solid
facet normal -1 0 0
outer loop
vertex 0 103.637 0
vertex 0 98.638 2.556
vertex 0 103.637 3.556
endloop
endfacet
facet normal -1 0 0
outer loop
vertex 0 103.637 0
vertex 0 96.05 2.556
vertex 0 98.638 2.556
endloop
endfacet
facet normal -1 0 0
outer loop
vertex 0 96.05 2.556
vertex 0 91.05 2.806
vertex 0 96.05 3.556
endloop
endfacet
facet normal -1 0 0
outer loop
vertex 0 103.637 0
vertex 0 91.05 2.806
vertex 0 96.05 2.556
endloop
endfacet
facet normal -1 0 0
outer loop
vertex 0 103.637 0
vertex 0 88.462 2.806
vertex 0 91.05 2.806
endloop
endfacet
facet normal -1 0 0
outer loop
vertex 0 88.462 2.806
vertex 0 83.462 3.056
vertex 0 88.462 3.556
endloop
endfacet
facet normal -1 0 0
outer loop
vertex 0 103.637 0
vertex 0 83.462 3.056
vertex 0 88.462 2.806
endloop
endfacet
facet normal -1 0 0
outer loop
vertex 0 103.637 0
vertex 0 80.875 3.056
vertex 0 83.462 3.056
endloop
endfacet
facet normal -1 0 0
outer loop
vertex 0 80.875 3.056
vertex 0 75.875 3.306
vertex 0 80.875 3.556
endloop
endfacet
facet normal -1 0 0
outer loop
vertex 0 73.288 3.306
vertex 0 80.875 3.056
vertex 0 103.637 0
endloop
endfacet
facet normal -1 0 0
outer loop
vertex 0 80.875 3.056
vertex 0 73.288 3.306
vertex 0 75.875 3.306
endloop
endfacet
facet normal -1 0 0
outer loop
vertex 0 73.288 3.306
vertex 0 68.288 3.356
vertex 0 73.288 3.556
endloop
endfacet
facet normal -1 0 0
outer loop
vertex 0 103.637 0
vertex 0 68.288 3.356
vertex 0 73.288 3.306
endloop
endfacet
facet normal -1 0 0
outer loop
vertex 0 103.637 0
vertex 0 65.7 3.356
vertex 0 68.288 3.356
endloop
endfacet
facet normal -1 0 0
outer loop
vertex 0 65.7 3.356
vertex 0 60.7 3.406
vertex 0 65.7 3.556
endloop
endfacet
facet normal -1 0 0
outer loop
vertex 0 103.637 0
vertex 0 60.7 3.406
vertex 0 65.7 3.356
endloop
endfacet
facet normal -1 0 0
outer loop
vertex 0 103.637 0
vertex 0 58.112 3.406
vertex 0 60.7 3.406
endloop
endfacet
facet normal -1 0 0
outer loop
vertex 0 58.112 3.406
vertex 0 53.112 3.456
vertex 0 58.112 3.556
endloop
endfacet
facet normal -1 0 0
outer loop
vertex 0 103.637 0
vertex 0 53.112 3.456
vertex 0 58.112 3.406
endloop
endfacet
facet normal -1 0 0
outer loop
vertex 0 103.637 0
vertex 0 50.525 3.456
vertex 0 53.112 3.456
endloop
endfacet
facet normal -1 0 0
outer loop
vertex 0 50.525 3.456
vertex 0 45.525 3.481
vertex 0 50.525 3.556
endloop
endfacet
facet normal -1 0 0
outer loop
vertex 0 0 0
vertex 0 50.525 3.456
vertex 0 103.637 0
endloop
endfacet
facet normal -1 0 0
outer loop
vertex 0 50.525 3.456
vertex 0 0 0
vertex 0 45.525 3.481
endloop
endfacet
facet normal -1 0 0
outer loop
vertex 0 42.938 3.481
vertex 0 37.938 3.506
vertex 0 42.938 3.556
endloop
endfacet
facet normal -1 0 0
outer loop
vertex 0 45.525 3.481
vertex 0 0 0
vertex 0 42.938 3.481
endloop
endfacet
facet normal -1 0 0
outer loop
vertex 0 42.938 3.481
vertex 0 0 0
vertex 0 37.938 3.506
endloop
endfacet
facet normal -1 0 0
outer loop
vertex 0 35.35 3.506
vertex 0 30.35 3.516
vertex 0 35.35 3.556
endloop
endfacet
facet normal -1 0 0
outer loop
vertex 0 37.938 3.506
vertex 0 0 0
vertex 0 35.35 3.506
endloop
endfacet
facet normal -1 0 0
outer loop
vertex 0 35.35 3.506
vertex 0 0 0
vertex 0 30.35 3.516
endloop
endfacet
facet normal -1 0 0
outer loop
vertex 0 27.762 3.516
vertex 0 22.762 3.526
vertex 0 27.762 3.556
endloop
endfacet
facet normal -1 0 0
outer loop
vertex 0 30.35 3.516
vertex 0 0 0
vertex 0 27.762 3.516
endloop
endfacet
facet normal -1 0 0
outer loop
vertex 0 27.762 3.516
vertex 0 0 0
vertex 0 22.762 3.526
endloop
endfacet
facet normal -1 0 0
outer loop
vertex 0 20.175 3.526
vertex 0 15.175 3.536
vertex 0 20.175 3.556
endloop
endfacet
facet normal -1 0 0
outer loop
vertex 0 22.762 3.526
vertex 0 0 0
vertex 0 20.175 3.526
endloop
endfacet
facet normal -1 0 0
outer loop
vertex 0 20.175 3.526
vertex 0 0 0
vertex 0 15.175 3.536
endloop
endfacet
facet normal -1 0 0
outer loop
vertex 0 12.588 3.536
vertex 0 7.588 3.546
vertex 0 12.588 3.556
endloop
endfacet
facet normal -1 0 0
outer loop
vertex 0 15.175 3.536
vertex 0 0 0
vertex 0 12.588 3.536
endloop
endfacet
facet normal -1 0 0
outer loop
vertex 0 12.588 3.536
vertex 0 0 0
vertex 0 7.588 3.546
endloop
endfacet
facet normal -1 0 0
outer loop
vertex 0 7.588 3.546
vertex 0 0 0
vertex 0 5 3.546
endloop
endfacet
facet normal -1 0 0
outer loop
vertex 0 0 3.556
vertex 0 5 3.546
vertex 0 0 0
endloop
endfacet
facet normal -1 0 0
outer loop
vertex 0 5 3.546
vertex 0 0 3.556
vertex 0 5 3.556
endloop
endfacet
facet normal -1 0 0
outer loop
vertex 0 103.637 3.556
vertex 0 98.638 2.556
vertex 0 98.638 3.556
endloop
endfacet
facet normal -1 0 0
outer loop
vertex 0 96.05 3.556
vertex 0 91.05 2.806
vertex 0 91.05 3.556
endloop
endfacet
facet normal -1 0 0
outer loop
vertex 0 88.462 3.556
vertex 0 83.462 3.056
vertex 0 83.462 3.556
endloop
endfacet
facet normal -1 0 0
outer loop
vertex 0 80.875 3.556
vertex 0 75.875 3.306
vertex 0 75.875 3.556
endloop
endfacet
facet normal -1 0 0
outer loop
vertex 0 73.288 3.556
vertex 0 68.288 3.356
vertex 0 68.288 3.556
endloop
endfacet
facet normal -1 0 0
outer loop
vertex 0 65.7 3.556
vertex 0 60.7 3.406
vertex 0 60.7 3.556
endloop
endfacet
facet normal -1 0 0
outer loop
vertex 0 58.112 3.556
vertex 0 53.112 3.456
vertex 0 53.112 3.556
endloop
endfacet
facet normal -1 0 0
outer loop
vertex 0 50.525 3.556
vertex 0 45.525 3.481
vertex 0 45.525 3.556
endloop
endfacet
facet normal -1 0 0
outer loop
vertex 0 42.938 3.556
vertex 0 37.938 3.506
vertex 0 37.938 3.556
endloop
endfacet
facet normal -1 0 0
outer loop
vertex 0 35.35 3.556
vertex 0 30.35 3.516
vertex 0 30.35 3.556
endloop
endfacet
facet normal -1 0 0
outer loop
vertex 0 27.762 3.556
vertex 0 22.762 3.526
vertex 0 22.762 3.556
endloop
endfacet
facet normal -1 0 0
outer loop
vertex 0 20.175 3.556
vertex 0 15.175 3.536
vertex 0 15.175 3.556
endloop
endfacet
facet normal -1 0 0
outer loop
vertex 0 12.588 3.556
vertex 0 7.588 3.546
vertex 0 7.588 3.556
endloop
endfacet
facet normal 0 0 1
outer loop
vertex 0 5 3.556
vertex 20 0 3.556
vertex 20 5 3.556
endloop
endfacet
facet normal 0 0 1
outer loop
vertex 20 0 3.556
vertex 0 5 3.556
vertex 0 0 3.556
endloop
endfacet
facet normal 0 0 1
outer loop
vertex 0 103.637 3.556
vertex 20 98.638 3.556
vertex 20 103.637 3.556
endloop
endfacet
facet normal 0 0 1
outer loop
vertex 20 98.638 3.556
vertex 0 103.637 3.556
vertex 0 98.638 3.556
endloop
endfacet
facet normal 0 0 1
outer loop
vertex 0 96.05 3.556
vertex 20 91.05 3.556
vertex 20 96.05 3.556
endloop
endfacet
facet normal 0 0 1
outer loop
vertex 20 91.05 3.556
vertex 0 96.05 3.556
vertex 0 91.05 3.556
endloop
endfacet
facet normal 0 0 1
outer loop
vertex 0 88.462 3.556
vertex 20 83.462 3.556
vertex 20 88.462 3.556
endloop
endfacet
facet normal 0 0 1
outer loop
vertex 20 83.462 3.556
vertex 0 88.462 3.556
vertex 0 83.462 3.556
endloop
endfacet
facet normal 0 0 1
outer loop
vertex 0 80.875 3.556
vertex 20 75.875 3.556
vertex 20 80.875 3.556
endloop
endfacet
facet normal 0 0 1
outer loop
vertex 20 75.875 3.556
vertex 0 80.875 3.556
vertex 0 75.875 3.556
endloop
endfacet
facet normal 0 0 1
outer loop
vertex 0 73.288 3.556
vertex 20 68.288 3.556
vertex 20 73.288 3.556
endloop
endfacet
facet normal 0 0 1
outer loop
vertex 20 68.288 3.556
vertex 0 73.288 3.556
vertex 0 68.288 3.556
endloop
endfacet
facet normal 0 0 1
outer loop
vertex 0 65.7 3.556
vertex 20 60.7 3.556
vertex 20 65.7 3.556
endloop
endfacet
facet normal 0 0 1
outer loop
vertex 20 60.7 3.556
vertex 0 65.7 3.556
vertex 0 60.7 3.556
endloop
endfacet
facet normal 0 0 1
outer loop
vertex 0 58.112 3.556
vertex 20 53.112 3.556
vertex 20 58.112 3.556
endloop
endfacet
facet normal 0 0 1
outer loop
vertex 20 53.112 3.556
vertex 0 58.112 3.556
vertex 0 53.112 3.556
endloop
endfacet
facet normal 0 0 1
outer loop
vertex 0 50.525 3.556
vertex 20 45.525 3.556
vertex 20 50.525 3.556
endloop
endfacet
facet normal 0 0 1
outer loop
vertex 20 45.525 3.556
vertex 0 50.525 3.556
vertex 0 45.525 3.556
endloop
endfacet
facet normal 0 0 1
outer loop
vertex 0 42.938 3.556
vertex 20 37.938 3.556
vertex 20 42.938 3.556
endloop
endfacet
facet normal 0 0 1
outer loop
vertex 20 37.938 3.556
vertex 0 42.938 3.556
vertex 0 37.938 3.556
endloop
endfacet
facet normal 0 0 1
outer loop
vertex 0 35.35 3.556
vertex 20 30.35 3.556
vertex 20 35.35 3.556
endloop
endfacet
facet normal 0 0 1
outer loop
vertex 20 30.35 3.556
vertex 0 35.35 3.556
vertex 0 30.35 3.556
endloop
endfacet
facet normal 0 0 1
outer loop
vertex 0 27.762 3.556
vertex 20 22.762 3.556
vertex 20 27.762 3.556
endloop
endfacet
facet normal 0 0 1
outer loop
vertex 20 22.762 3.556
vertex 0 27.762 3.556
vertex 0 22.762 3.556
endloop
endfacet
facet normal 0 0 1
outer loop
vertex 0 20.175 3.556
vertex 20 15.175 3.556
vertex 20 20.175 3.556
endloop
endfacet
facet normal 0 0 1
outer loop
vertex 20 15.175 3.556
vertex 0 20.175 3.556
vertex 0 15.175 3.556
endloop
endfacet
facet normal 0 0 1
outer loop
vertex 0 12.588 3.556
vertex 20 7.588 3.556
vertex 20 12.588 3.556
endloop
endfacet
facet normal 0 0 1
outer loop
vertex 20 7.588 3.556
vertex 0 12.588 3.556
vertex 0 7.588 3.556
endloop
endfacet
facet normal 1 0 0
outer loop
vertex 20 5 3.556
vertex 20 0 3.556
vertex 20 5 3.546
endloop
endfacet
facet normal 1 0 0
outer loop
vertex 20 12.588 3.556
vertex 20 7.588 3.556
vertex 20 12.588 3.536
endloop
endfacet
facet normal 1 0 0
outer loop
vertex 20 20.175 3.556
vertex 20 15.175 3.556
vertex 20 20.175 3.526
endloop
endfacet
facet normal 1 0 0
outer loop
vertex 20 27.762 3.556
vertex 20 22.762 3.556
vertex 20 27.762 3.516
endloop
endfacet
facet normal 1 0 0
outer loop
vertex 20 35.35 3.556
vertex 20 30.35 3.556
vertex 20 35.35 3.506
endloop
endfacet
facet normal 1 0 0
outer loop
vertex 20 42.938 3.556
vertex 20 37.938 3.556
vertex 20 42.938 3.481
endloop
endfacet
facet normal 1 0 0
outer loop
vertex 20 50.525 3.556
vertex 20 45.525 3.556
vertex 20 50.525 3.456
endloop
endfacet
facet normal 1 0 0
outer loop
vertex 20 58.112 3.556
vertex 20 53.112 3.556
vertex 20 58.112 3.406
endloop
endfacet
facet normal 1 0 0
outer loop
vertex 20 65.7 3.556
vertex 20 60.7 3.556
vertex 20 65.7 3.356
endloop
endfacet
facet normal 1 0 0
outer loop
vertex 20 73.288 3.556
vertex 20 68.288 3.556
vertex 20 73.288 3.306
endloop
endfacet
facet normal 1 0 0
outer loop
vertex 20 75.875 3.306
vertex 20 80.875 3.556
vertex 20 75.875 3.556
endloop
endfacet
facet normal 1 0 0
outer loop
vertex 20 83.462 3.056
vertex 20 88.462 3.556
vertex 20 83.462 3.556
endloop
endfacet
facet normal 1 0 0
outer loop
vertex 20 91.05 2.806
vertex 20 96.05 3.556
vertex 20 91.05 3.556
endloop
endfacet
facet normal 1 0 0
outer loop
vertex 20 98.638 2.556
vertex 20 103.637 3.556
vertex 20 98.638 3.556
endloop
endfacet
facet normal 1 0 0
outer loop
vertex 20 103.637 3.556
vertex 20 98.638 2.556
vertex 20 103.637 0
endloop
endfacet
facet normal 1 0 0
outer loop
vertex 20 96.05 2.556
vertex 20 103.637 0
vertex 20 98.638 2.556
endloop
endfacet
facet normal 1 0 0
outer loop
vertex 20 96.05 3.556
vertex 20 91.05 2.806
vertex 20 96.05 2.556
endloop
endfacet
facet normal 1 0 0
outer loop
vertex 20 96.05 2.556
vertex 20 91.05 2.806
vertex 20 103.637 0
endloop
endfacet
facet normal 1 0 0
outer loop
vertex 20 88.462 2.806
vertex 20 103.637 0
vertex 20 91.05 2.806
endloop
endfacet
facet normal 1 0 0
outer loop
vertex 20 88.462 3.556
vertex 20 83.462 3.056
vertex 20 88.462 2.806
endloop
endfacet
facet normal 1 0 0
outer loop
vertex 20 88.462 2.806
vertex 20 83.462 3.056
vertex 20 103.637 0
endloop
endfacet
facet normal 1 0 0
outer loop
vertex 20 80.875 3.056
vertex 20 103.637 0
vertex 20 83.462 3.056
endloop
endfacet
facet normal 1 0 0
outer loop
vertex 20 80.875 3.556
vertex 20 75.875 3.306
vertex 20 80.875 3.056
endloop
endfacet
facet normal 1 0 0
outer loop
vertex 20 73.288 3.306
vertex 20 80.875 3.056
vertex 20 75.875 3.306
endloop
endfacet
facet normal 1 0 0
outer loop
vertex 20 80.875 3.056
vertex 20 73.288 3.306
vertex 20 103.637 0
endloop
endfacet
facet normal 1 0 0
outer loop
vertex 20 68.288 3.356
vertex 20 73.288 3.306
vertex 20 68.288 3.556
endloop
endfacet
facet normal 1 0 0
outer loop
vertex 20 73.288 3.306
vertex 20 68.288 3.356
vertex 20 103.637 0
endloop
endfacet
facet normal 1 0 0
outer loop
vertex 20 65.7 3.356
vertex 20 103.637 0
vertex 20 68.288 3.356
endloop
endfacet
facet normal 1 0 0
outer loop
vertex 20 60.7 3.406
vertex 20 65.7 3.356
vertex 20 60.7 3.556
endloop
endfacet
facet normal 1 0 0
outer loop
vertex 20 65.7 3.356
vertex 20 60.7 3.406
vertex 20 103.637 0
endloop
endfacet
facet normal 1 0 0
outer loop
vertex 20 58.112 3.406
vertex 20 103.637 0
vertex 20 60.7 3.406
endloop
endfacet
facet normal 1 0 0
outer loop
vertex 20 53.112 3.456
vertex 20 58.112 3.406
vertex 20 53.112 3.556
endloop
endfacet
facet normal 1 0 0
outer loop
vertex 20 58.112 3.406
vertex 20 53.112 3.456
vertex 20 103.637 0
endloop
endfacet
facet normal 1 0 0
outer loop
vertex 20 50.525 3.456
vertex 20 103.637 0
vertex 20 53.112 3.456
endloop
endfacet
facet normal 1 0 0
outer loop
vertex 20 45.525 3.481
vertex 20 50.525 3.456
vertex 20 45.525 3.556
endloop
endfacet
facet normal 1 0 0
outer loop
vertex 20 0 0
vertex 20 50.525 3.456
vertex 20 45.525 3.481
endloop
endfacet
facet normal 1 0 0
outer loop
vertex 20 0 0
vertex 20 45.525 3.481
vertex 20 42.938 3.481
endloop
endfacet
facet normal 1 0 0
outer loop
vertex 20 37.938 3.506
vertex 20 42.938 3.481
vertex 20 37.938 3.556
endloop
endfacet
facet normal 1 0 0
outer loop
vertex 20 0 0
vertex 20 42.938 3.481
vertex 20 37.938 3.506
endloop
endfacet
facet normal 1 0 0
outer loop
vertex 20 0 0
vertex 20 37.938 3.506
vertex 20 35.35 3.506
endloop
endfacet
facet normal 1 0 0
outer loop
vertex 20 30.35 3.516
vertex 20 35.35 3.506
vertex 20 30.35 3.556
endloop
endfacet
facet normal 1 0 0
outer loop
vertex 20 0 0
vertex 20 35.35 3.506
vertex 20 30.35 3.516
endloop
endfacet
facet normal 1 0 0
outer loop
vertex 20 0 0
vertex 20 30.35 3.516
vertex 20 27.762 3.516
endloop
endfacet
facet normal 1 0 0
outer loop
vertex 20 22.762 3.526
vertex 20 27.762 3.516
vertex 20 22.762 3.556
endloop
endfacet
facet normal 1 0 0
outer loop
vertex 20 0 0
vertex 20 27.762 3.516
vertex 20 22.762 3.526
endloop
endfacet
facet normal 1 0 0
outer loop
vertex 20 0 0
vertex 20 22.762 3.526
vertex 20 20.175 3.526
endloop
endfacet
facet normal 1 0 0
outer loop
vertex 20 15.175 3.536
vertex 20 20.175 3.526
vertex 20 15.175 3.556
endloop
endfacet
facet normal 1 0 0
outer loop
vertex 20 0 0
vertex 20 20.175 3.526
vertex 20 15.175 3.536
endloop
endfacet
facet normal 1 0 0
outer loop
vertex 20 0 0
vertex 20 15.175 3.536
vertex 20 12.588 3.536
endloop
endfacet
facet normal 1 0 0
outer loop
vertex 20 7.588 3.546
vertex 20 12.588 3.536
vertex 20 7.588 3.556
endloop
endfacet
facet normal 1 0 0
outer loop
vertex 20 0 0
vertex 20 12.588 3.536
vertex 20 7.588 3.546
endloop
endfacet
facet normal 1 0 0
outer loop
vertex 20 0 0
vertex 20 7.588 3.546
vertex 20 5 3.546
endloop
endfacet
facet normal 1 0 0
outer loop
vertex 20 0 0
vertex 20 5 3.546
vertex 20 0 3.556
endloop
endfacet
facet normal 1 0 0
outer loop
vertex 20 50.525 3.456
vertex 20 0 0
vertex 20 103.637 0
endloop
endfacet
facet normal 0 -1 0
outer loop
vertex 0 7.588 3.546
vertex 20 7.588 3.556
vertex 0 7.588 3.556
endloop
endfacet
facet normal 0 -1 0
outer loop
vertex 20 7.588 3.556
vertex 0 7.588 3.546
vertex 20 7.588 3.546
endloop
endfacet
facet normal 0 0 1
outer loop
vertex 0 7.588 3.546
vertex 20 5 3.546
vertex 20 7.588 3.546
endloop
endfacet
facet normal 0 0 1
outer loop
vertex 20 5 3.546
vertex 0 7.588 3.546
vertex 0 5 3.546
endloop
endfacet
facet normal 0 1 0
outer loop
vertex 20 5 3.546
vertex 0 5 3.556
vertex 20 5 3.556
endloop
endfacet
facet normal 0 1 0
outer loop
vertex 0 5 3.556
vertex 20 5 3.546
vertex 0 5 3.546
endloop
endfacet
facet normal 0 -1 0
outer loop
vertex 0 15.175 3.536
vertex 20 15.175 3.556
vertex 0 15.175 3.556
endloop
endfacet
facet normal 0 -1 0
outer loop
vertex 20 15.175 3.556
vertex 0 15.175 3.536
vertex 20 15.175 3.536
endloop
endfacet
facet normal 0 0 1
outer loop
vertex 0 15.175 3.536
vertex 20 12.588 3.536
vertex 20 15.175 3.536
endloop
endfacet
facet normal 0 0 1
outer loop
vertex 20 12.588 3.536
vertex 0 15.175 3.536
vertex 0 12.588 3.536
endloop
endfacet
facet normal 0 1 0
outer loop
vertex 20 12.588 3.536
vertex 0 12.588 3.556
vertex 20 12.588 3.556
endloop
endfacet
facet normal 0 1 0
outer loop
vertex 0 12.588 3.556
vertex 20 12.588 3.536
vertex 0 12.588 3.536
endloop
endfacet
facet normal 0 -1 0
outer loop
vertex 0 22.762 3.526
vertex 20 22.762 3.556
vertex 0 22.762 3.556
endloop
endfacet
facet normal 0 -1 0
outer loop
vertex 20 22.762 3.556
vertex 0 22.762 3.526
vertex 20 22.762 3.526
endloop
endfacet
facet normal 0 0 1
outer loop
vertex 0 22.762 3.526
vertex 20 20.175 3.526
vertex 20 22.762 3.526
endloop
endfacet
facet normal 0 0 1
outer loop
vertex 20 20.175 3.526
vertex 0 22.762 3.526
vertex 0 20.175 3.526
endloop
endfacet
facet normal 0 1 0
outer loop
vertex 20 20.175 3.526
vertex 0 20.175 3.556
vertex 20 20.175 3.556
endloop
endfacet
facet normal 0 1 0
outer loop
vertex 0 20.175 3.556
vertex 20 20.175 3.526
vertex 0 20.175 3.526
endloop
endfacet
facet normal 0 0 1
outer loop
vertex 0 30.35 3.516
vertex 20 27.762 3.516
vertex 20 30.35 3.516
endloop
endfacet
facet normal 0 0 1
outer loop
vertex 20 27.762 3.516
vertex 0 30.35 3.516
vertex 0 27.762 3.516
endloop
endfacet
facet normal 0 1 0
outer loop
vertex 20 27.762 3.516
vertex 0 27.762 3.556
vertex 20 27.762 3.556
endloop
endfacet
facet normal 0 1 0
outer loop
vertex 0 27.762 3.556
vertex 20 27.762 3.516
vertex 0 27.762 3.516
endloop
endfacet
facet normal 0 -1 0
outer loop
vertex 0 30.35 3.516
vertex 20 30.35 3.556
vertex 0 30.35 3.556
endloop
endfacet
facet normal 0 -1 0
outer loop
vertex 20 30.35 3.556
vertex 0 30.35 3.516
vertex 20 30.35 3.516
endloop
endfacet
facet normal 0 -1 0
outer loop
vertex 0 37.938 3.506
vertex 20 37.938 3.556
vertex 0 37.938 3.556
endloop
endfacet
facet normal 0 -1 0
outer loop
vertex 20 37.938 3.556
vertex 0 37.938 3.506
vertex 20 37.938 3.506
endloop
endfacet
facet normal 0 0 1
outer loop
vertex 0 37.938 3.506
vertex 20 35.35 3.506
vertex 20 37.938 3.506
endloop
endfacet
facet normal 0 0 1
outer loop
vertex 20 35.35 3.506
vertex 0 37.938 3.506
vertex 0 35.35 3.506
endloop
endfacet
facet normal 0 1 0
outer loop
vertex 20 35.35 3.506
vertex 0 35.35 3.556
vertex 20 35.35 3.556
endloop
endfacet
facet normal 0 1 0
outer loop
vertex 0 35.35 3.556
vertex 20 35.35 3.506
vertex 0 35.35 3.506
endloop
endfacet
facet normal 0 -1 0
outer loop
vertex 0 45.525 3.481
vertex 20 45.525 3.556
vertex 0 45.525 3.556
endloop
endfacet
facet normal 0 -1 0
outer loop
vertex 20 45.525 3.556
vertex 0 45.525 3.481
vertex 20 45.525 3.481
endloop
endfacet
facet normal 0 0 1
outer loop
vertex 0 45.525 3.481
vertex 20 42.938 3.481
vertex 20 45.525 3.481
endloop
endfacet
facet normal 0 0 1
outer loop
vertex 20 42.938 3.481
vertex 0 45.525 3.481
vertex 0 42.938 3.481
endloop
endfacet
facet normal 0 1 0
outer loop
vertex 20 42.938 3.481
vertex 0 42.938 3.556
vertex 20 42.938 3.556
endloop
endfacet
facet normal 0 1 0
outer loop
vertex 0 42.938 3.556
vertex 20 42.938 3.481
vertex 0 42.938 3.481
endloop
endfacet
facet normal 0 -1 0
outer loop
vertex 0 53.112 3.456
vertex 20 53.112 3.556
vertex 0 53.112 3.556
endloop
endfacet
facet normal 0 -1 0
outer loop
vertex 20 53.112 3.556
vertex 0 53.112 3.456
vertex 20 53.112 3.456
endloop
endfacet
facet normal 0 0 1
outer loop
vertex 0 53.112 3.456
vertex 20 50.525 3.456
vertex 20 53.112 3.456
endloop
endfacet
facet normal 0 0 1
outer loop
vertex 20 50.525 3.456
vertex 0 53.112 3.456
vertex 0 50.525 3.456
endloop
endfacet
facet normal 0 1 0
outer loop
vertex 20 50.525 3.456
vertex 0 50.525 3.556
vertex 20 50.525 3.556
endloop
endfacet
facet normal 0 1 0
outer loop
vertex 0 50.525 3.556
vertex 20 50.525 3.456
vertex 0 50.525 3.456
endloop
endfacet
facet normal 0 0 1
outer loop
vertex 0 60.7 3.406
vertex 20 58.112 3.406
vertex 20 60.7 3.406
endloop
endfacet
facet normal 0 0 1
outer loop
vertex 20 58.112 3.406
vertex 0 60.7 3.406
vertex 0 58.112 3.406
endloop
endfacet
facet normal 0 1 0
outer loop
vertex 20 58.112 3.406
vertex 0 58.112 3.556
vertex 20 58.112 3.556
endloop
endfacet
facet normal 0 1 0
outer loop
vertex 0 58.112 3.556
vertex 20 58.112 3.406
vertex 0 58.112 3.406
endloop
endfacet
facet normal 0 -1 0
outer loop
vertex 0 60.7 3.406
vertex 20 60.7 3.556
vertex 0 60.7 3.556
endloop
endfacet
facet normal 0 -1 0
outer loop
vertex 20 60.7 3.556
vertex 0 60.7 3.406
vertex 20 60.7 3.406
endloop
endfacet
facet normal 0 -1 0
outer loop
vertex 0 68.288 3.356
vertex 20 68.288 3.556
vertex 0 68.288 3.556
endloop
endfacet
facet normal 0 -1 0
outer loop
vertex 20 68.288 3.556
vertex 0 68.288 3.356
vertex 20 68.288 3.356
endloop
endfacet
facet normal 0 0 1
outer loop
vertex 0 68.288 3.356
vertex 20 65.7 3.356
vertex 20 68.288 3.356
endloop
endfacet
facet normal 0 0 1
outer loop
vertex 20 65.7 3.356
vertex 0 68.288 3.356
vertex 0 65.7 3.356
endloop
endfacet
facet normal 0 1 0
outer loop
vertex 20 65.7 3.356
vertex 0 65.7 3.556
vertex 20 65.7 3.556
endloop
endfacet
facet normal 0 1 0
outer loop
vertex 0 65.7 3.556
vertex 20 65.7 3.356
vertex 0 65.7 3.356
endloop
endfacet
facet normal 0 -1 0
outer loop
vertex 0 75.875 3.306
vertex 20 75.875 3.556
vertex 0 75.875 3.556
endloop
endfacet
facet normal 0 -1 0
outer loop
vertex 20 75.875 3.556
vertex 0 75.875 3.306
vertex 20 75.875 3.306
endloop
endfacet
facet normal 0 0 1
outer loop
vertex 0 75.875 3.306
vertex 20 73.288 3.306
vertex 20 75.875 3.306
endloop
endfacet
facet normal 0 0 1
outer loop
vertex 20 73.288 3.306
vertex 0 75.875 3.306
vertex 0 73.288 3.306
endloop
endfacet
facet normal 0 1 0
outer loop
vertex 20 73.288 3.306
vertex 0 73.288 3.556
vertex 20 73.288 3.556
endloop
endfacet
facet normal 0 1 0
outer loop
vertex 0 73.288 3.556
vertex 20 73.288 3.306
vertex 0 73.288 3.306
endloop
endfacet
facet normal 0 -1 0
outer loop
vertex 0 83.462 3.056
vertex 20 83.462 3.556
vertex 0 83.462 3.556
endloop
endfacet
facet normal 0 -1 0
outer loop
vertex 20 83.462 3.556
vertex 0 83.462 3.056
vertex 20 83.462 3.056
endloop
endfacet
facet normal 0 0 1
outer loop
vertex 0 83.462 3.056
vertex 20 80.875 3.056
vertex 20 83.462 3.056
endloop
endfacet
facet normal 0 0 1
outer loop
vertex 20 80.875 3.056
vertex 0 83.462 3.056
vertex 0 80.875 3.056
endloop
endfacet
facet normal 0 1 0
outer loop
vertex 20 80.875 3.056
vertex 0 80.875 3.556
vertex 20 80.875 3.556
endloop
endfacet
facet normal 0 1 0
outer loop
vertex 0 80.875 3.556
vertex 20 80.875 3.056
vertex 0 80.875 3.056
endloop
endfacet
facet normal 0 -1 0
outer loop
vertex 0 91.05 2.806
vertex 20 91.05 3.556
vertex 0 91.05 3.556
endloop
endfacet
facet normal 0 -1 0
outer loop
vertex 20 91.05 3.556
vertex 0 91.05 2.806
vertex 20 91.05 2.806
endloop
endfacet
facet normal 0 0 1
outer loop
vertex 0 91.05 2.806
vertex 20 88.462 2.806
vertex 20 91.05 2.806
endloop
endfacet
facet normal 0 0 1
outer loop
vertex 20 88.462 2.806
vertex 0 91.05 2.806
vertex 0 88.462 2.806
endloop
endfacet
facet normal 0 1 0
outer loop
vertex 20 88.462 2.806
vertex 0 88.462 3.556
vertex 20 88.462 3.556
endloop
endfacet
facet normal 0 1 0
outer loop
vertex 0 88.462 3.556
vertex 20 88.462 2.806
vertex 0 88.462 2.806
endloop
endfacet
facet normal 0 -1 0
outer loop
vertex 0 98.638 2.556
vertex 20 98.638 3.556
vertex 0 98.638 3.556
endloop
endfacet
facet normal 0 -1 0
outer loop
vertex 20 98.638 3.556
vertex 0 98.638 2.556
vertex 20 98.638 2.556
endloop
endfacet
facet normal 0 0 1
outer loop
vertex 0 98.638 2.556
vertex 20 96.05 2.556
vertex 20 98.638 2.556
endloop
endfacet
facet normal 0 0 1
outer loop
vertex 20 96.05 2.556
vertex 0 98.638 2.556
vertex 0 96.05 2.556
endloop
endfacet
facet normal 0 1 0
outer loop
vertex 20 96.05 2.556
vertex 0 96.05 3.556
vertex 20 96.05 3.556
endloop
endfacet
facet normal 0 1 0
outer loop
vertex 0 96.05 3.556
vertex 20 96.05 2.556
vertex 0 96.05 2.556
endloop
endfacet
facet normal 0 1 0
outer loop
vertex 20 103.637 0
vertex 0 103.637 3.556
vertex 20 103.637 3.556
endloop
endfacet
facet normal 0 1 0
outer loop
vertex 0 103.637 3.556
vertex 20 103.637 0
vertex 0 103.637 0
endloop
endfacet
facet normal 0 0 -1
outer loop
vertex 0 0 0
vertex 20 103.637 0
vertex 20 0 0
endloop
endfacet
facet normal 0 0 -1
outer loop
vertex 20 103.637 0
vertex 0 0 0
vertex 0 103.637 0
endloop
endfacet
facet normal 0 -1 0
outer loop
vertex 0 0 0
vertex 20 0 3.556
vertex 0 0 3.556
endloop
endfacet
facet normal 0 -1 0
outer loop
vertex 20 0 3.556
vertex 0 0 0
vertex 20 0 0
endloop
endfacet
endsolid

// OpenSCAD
//Parameters
  //Cube sizes to test
  zDepth = [0.01, 0.02, 0.03, 0.04, 0.05, 0.075, 0.1, 0.15, 0.2, 0.25, 0.5, 0.75, 1];  
  //End mill diameter 
  endMillD = 1.5875;   //1/16"
  //Stock and test piece definitions
  stockZ = 5.556;
  faceDepth = 2;      //Amount of stock to face
  stockX = 20;
  //Spacing between depth tests
  spacing = 5; 

//Maths
  //Add 1mm to end mill diameter to space out replicates
  CutWidth = endMillD + 1;
  StockY = (((CutWidth)+spacing)*len(zDepth))+spacing;
  echo(StockY=StockY);
  
//uncomment to render
ZTestDevice();

//Module Definition
module ZTestDevice(){
  difference(){
    cube([stockX,StockY,stockZ-faceDepth], center=false);
    for(i = [0 : len(zDepth)-1]){
      let(YLocation = i*(CutWidth+spacing)){
	translate([0,YLocation+spacing,(stockZ-faceDepth)-zDepth[i]])cube([stockX,CutWidth,zDepth[i]], center=false);	
      }
    }
  }
}
